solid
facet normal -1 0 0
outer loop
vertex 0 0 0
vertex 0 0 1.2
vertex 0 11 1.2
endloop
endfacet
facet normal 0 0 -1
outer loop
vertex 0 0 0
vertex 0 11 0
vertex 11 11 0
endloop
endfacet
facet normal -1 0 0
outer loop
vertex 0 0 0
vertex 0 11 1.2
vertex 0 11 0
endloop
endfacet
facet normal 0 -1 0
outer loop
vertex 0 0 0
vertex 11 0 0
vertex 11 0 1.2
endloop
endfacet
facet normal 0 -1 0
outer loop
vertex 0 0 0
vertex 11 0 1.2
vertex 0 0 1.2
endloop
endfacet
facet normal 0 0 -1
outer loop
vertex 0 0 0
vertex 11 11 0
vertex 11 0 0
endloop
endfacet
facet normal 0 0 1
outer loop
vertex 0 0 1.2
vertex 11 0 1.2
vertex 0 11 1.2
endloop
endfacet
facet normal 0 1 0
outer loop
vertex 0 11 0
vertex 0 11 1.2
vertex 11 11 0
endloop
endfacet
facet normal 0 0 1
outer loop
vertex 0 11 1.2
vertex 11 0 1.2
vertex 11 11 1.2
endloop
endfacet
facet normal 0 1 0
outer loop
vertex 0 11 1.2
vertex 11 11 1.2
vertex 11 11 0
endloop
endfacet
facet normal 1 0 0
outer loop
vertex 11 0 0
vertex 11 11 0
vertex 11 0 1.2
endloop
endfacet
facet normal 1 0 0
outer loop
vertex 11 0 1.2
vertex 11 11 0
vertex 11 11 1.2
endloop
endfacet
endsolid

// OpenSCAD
/* Warning, this is a very basic generator with a lot of approximation 
input data : [TFBGA, DXB, 11x11x1.2mm, 235, , A, C04-21485A]
generated by com.zoubworld.electronics.cad.model3d.Basic
Date : Sun Feb 15 10:50:49 CET 2026
*/

//body
color("black")
translate([0,0,0])
cube([11.0,11.0,1.2], center=false);
